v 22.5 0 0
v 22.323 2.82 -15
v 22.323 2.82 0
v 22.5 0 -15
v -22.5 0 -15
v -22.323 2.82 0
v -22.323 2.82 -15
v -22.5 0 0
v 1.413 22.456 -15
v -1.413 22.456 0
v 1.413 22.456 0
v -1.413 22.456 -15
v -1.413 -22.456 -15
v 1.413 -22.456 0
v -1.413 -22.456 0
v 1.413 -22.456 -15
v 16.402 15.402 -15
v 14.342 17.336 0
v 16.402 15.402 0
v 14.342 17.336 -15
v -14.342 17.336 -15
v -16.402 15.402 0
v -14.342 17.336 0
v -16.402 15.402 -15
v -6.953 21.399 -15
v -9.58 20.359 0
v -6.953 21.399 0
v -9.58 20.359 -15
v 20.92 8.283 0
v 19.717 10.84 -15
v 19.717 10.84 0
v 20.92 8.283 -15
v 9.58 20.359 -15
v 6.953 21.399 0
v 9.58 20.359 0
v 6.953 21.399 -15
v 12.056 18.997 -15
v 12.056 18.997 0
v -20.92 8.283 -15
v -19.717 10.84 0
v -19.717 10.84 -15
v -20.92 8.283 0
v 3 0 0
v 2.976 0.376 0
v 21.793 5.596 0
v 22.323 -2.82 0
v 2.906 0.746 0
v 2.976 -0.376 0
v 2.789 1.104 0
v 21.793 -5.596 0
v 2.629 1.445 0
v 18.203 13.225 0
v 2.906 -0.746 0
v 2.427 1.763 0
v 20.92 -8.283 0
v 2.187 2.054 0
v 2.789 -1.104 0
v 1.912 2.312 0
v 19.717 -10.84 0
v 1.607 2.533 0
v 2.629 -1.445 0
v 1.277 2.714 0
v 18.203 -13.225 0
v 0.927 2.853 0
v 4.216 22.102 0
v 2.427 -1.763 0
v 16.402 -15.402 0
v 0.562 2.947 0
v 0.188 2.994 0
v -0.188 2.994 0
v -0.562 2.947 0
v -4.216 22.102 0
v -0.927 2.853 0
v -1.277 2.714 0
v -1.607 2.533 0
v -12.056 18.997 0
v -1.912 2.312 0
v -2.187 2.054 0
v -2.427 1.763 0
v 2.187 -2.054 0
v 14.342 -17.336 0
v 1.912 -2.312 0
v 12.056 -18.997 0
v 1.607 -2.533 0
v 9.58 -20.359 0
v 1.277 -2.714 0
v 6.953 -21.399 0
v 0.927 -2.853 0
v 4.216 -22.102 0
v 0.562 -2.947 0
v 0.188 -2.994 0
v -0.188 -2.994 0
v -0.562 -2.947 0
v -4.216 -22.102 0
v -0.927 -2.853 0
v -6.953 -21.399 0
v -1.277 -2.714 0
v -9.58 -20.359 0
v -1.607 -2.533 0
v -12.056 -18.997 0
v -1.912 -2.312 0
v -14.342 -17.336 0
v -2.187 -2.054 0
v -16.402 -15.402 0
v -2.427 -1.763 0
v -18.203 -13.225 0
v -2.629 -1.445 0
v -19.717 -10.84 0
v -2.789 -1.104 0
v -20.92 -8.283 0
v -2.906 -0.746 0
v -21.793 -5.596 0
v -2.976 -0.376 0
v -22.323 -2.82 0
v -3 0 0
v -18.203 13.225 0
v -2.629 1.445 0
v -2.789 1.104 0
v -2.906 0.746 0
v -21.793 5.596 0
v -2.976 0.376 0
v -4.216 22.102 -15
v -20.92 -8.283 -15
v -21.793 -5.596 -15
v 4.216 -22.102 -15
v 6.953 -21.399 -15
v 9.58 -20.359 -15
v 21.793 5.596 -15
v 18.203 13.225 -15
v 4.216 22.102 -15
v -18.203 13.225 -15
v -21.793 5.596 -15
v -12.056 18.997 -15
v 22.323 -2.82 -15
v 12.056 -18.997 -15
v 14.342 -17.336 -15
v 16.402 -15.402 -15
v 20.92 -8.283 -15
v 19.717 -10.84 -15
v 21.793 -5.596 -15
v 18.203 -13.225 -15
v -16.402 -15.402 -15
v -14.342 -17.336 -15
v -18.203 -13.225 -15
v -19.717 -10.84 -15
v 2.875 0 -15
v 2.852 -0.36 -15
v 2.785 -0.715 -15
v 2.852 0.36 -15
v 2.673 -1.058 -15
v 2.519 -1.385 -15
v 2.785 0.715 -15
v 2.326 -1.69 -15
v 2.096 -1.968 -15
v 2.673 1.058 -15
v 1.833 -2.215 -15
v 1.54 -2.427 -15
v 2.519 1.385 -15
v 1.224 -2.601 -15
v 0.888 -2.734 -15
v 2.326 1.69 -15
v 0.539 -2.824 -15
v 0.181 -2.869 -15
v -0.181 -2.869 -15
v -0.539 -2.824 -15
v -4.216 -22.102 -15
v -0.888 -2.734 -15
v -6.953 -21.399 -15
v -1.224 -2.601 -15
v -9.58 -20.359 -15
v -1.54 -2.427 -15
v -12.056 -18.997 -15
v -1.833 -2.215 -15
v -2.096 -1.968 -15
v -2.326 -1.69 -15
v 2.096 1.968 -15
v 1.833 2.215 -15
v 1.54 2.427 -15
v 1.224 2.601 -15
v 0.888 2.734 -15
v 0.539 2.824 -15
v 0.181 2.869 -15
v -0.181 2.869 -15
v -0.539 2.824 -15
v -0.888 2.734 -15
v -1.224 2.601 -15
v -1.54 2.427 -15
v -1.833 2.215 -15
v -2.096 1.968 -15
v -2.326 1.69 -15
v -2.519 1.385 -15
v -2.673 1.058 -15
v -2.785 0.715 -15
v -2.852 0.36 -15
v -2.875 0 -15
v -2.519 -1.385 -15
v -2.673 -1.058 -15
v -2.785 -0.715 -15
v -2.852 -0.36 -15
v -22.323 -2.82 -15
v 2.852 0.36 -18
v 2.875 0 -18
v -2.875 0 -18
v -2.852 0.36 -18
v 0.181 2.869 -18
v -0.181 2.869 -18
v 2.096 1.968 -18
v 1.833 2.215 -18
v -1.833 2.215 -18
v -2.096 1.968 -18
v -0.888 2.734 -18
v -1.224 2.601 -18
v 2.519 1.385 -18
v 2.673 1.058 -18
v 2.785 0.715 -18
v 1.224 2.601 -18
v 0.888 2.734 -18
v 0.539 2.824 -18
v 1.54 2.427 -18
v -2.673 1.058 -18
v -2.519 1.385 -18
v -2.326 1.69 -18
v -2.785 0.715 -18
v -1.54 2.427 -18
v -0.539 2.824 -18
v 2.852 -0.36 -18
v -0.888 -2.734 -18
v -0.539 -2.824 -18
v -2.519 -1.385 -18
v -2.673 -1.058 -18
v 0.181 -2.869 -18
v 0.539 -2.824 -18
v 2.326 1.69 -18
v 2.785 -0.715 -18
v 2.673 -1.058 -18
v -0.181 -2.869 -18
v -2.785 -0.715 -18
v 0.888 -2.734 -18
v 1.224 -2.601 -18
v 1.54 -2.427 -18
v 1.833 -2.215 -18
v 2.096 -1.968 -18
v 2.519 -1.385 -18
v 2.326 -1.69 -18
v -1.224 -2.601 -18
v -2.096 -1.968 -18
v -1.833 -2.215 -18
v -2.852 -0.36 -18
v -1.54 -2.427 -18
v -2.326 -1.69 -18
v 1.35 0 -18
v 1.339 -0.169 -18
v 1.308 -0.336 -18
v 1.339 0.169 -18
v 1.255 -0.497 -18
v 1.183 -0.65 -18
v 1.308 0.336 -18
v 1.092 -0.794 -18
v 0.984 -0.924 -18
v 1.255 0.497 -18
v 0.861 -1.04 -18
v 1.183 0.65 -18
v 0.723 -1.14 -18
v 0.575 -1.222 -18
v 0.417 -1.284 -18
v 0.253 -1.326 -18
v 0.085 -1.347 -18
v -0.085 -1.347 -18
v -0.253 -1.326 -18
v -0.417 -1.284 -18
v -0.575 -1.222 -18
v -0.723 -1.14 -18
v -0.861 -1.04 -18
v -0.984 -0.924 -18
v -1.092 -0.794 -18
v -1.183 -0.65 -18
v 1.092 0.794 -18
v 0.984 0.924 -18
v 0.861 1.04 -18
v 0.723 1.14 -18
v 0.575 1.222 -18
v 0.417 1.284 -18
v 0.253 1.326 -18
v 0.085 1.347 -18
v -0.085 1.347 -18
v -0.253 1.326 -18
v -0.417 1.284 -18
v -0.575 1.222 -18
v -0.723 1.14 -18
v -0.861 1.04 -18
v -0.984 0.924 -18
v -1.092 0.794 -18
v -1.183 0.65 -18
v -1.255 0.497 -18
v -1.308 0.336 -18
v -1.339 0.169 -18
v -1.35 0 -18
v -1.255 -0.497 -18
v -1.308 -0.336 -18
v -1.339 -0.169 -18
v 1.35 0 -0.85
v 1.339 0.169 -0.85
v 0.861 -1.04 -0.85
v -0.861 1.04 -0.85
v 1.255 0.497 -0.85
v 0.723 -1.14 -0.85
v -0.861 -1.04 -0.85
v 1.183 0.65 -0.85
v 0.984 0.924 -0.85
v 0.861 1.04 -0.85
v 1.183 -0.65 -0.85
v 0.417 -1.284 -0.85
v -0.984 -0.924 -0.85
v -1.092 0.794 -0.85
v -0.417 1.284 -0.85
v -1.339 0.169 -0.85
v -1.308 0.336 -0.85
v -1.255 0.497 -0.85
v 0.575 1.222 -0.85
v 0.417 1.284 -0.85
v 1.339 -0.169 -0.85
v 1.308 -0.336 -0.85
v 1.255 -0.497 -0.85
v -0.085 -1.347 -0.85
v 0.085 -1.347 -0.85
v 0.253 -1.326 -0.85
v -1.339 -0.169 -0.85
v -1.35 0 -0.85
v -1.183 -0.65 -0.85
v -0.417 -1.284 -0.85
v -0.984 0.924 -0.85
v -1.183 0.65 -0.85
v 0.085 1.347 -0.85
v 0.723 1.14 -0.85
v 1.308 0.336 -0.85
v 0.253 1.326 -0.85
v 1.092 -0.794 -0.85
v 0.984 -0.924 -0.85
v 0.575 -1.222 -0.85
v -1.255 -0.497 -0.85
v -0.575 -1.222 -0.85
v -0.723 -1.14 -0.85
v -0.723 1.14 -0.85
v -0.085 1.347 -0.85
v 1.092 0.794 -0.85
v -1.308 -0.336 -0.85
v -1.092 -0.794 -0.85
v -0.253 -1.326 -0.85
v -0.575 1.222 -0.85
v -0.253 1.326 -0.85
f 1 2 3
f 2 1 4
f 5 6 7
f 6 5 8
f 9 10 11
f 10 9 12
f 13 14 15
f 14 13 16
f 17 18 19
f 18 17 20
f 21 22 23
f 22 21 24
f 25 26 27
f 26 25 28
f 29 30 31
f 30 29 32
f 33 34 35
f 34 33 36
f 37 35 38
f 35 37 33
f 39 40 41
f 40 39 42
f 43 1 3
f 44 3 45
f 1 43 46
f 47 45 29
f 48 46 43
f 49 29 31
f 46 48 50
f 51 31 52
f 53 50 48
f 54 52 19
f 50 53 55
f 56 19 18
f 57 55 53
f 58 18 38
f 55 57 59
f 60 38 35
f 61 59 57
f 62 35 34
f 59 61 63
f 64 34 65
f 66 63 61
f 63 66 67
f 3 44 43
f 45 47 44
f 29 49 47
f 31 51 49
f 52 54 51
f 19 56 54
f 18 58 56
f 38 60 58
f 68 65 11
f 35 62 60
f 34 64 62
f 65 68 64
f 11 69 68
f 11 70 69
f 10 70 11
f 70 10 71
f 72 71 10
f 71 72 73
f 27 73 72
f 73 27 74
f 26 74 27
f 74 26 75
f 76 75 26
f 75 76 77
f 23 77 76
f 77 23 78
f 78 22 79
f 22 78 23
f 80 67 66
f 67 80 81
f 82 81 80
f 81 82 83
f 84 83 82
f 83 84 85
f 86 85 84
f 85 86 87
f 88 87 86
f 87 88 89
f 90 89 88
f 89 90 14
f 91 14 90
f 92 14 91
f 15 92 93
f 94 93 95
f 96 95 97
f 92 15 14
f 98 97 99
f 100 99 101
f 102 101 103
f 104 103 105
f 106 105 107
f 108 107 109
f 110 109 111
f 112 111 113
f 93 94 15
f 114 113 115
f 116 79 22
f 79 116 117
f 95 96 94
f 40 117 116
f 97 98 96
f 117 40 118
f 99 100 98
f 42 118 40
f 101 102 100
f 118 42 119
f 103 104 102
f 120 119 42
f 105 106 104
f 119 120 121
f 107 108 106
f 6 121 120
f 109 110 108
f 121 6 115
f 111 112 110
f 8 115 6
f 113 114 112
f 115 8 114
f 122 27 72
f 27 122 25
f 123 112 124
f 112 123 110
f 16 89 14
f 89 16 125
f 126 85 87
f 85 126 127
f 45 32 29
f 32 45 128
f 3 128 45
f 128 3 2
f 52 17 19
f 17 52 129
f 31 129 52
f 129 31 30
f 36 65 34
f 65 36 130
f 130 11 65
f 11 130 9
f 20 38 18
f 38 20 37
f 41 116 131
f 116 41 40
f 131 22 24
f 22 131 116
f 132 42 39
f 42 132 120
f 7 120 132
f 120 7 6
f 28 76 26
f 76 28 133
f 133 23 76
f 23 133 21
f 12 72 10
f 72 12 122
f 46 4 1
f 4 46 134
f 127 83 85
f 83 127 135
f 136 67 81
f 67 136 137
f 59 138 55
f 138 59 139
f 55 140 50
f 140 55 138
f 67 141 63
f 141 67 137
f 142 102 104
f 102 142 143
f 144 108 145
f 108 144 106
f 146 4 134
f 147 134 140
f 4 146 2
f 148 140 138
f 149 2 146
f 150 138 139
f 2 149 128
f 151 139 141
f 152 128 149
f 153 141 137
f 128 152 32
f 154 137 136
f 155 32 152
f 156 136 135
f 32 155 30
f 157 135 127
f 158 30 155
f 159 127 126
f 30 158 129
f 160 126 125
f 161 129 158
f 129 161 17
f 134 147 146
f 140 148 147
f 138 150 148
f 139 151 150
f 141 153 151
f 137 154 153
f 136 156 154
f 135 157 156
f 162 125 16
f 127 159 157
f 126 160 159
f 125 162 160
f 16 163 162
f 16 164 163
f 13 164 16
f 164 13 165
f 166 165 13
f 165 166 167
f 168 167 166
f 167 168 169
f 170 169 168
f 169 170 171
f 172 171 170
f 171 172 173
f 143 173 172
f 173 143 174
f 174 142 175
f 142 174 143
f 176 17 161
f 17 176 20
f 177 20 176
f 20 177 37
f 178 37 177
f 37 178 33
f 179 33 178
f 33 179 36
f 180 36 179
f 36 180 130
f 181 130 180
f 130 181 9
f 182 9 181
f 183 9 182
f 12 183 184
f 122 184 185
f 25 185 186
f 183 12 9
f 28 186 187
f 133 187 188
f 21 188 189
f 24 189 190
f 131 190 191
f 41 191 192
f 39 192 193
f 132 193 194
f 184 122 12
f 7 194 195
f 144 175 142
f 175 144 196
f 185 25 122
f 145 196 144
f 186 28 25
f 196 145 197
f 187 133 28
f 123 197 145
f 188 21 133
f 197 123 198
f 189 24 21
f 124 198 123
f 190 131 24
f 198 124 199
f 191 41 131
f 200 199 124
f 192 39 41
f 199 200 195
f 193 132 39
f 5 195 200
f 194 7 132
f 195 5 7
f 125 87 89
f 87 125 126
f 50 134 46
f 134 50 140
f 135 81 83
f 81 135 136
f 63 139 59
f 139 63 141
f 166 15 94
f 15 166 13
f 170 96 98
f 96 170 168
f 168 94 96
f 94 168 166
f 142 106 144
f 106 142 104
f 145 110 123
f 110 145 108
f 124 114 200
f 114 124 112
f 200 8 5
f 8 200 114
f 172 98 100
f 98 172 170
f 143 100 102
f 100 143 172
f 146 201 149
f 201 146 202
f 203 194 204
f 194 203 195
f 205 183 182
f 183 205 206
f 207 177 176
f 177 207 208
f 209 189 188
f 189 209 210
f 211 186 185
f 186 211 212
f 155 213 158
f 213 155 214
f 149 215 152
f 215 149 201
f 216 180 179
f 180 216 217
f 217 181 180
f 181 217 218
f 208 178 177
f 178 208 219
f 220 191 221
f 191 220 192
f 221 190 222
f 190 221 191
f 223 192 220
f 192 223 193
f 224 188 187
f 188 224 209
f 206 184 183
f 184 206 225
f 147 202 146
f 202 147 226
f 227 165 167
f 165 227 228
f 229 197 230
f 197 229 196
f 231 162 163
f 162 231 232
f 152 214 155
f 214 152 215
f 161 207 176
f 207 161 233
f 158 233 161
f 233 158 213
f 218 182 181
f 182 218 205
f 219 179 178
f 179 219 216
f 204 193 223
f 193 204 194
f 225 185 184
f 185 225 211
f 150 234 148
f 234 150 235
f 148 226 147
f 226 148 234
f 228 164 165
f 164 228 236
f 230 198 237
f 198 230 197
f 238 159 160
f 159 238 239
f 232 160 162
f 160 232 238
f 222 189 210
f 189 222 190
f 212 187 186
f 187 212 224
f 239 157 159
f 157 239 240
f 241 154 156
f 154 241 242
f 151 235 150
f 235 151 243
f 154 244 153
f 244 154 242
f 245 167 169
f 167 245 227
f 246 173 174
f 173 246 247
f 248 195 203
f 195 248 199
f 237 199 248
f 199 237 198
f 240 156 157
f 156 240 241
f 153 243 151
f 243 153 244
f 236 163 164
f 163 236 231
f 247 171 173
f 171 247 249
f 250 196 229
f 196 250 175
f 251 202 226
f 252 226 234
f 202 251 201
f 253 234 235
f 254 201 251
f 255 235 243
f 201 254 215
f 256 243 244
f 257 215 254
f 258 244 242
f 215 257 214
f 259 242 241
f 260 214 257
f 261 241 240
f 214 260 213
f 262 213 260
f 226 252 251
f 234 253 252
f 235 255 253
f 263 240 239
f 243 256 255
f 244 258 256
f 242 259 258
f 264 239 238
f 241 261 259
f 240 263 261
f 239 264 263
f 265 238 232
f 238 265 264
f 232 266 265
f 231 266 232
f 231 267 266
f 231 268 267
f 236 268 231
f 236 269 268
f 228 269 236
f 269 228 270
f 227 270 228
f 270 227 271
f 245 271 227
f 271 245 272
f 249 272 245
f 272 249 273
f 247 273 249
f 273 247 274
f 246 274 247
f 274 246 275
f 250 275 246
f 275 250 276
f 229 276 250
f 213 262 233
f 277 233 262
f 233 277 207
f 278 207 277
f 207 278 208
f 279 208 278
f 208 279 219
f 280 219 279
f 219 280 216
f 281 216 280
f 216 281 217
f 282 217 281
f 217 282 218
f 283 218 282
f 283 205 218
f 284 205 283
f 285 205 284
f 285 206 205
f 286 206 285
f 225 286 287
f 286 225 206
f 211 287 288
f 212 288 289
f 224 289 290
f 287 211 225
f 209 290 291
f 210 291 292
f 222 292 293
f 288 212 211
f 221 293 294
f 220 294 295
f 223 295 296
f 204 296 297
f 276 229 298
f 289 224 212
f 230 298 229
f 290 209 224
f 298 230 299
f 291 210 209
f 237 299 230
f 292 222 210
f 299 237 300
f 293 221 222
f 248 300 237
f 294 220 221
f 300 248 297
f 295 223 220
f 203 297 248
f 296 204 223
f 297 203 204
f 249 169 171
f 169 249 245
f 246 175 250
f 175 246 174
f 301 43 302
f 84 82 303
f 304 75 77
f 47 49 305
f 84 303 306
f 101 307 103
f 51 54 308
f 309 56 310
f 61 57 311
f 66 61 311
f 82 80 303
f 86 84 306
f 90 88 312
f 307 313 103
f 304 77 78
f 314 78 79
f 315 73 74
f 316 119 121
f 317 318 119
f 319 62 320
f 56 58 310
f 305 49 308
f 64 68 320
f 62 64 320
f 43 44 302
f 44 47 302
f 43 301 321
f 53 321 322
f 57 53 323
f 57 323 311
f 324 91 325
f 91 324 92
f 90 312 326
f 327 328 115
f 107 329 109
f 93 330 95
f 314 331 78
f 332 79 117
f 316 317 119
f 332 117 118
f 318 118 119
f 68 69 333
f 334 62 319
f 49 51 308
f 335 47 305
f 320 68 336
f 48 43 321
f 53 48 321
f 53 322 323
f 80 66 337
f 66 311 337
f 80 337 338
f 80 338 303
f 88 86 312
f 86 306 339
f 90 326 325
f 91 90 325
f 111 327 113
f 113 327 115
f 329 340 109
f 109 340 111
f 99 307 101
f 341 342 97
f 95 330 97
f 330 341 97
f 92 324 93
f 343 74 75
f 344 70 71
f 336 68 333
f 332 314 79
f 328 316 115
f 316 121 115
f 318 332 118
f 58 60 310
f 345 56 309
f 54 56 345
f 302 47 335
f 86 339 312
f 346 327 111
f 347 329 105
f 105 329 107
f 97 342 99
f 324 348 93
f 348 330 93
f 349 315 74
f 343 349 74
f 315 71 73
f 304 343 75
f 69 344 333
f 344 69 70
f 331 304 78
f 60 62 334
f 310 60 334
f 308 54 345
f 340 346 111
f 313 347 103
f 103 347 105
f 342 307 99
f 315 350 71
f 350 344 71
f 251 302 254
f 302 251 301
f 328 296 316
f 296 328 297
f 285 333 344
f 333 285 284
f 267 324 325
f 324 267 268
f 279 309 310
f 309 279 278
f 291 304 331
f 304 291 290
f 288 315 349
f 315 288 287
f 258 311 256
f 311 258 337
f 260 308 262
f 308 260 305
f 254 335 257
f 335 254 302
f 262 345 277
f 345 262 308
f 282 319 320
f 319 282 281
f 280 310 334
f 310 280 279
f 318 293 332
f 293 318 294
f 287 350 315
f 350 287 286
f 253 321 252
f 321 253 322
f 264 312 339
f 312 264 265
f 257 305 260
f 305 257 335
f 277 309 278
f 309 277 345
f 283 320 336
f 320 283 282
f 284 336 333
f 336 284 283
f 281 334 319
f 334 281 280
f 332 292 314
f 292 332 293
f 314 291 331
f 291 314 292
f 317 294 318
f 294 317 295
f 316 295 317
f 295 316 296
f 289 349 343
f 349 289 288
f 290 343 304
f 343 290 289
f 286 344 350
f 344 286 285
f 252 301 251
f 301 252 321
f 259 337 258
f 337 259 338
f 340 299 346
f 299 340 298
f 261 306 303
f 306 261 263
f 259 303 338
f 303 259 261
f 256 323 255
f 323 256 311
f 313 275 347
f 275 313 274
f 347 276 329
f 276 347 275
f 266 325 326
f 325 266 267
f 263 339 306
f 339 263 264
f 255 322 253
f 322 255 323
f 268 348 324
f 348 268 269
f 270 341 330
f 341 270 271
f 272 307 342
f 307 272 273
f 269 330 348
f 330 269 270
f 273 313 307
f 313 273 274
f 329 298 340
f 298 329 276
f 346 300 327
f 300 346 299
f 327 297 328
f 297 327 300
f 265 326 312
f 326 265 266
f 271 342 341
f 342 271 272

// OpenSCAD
$fn = 50;

difference() {
	union() {
		translate(v = [0, 0, -15.0]) {
			cylinder(h = 15, r = 22.5);
		}
		#translate(v = [0, 0, -18.0]) {
			cylinder(h = 18, r = 2.875);
		}
	}
	union() {
		translate(v = [0, 0, 0]) {
			rotate(a = [0, 0, 0]) {
				difference() {
					union() {
						translate(v = [0, 0, -18.0]) {
							cylinder(h = 18, r = 1.0);
						}
						translate(v = [0, 0, -0.85]) {
							cylinder(h = 0.85, r1 = 1.35, r2 = 3.0);
						}
						translate(v = [0, 0, -18.0]) {
							cylinder(h = 18, r = 1.35);
						}
						translate(v = [0, 0, -18.0]) {
							cylinder(h = 18, r = 1.0);
						}
					}
					union();
				}
			}
		}
	}
}
